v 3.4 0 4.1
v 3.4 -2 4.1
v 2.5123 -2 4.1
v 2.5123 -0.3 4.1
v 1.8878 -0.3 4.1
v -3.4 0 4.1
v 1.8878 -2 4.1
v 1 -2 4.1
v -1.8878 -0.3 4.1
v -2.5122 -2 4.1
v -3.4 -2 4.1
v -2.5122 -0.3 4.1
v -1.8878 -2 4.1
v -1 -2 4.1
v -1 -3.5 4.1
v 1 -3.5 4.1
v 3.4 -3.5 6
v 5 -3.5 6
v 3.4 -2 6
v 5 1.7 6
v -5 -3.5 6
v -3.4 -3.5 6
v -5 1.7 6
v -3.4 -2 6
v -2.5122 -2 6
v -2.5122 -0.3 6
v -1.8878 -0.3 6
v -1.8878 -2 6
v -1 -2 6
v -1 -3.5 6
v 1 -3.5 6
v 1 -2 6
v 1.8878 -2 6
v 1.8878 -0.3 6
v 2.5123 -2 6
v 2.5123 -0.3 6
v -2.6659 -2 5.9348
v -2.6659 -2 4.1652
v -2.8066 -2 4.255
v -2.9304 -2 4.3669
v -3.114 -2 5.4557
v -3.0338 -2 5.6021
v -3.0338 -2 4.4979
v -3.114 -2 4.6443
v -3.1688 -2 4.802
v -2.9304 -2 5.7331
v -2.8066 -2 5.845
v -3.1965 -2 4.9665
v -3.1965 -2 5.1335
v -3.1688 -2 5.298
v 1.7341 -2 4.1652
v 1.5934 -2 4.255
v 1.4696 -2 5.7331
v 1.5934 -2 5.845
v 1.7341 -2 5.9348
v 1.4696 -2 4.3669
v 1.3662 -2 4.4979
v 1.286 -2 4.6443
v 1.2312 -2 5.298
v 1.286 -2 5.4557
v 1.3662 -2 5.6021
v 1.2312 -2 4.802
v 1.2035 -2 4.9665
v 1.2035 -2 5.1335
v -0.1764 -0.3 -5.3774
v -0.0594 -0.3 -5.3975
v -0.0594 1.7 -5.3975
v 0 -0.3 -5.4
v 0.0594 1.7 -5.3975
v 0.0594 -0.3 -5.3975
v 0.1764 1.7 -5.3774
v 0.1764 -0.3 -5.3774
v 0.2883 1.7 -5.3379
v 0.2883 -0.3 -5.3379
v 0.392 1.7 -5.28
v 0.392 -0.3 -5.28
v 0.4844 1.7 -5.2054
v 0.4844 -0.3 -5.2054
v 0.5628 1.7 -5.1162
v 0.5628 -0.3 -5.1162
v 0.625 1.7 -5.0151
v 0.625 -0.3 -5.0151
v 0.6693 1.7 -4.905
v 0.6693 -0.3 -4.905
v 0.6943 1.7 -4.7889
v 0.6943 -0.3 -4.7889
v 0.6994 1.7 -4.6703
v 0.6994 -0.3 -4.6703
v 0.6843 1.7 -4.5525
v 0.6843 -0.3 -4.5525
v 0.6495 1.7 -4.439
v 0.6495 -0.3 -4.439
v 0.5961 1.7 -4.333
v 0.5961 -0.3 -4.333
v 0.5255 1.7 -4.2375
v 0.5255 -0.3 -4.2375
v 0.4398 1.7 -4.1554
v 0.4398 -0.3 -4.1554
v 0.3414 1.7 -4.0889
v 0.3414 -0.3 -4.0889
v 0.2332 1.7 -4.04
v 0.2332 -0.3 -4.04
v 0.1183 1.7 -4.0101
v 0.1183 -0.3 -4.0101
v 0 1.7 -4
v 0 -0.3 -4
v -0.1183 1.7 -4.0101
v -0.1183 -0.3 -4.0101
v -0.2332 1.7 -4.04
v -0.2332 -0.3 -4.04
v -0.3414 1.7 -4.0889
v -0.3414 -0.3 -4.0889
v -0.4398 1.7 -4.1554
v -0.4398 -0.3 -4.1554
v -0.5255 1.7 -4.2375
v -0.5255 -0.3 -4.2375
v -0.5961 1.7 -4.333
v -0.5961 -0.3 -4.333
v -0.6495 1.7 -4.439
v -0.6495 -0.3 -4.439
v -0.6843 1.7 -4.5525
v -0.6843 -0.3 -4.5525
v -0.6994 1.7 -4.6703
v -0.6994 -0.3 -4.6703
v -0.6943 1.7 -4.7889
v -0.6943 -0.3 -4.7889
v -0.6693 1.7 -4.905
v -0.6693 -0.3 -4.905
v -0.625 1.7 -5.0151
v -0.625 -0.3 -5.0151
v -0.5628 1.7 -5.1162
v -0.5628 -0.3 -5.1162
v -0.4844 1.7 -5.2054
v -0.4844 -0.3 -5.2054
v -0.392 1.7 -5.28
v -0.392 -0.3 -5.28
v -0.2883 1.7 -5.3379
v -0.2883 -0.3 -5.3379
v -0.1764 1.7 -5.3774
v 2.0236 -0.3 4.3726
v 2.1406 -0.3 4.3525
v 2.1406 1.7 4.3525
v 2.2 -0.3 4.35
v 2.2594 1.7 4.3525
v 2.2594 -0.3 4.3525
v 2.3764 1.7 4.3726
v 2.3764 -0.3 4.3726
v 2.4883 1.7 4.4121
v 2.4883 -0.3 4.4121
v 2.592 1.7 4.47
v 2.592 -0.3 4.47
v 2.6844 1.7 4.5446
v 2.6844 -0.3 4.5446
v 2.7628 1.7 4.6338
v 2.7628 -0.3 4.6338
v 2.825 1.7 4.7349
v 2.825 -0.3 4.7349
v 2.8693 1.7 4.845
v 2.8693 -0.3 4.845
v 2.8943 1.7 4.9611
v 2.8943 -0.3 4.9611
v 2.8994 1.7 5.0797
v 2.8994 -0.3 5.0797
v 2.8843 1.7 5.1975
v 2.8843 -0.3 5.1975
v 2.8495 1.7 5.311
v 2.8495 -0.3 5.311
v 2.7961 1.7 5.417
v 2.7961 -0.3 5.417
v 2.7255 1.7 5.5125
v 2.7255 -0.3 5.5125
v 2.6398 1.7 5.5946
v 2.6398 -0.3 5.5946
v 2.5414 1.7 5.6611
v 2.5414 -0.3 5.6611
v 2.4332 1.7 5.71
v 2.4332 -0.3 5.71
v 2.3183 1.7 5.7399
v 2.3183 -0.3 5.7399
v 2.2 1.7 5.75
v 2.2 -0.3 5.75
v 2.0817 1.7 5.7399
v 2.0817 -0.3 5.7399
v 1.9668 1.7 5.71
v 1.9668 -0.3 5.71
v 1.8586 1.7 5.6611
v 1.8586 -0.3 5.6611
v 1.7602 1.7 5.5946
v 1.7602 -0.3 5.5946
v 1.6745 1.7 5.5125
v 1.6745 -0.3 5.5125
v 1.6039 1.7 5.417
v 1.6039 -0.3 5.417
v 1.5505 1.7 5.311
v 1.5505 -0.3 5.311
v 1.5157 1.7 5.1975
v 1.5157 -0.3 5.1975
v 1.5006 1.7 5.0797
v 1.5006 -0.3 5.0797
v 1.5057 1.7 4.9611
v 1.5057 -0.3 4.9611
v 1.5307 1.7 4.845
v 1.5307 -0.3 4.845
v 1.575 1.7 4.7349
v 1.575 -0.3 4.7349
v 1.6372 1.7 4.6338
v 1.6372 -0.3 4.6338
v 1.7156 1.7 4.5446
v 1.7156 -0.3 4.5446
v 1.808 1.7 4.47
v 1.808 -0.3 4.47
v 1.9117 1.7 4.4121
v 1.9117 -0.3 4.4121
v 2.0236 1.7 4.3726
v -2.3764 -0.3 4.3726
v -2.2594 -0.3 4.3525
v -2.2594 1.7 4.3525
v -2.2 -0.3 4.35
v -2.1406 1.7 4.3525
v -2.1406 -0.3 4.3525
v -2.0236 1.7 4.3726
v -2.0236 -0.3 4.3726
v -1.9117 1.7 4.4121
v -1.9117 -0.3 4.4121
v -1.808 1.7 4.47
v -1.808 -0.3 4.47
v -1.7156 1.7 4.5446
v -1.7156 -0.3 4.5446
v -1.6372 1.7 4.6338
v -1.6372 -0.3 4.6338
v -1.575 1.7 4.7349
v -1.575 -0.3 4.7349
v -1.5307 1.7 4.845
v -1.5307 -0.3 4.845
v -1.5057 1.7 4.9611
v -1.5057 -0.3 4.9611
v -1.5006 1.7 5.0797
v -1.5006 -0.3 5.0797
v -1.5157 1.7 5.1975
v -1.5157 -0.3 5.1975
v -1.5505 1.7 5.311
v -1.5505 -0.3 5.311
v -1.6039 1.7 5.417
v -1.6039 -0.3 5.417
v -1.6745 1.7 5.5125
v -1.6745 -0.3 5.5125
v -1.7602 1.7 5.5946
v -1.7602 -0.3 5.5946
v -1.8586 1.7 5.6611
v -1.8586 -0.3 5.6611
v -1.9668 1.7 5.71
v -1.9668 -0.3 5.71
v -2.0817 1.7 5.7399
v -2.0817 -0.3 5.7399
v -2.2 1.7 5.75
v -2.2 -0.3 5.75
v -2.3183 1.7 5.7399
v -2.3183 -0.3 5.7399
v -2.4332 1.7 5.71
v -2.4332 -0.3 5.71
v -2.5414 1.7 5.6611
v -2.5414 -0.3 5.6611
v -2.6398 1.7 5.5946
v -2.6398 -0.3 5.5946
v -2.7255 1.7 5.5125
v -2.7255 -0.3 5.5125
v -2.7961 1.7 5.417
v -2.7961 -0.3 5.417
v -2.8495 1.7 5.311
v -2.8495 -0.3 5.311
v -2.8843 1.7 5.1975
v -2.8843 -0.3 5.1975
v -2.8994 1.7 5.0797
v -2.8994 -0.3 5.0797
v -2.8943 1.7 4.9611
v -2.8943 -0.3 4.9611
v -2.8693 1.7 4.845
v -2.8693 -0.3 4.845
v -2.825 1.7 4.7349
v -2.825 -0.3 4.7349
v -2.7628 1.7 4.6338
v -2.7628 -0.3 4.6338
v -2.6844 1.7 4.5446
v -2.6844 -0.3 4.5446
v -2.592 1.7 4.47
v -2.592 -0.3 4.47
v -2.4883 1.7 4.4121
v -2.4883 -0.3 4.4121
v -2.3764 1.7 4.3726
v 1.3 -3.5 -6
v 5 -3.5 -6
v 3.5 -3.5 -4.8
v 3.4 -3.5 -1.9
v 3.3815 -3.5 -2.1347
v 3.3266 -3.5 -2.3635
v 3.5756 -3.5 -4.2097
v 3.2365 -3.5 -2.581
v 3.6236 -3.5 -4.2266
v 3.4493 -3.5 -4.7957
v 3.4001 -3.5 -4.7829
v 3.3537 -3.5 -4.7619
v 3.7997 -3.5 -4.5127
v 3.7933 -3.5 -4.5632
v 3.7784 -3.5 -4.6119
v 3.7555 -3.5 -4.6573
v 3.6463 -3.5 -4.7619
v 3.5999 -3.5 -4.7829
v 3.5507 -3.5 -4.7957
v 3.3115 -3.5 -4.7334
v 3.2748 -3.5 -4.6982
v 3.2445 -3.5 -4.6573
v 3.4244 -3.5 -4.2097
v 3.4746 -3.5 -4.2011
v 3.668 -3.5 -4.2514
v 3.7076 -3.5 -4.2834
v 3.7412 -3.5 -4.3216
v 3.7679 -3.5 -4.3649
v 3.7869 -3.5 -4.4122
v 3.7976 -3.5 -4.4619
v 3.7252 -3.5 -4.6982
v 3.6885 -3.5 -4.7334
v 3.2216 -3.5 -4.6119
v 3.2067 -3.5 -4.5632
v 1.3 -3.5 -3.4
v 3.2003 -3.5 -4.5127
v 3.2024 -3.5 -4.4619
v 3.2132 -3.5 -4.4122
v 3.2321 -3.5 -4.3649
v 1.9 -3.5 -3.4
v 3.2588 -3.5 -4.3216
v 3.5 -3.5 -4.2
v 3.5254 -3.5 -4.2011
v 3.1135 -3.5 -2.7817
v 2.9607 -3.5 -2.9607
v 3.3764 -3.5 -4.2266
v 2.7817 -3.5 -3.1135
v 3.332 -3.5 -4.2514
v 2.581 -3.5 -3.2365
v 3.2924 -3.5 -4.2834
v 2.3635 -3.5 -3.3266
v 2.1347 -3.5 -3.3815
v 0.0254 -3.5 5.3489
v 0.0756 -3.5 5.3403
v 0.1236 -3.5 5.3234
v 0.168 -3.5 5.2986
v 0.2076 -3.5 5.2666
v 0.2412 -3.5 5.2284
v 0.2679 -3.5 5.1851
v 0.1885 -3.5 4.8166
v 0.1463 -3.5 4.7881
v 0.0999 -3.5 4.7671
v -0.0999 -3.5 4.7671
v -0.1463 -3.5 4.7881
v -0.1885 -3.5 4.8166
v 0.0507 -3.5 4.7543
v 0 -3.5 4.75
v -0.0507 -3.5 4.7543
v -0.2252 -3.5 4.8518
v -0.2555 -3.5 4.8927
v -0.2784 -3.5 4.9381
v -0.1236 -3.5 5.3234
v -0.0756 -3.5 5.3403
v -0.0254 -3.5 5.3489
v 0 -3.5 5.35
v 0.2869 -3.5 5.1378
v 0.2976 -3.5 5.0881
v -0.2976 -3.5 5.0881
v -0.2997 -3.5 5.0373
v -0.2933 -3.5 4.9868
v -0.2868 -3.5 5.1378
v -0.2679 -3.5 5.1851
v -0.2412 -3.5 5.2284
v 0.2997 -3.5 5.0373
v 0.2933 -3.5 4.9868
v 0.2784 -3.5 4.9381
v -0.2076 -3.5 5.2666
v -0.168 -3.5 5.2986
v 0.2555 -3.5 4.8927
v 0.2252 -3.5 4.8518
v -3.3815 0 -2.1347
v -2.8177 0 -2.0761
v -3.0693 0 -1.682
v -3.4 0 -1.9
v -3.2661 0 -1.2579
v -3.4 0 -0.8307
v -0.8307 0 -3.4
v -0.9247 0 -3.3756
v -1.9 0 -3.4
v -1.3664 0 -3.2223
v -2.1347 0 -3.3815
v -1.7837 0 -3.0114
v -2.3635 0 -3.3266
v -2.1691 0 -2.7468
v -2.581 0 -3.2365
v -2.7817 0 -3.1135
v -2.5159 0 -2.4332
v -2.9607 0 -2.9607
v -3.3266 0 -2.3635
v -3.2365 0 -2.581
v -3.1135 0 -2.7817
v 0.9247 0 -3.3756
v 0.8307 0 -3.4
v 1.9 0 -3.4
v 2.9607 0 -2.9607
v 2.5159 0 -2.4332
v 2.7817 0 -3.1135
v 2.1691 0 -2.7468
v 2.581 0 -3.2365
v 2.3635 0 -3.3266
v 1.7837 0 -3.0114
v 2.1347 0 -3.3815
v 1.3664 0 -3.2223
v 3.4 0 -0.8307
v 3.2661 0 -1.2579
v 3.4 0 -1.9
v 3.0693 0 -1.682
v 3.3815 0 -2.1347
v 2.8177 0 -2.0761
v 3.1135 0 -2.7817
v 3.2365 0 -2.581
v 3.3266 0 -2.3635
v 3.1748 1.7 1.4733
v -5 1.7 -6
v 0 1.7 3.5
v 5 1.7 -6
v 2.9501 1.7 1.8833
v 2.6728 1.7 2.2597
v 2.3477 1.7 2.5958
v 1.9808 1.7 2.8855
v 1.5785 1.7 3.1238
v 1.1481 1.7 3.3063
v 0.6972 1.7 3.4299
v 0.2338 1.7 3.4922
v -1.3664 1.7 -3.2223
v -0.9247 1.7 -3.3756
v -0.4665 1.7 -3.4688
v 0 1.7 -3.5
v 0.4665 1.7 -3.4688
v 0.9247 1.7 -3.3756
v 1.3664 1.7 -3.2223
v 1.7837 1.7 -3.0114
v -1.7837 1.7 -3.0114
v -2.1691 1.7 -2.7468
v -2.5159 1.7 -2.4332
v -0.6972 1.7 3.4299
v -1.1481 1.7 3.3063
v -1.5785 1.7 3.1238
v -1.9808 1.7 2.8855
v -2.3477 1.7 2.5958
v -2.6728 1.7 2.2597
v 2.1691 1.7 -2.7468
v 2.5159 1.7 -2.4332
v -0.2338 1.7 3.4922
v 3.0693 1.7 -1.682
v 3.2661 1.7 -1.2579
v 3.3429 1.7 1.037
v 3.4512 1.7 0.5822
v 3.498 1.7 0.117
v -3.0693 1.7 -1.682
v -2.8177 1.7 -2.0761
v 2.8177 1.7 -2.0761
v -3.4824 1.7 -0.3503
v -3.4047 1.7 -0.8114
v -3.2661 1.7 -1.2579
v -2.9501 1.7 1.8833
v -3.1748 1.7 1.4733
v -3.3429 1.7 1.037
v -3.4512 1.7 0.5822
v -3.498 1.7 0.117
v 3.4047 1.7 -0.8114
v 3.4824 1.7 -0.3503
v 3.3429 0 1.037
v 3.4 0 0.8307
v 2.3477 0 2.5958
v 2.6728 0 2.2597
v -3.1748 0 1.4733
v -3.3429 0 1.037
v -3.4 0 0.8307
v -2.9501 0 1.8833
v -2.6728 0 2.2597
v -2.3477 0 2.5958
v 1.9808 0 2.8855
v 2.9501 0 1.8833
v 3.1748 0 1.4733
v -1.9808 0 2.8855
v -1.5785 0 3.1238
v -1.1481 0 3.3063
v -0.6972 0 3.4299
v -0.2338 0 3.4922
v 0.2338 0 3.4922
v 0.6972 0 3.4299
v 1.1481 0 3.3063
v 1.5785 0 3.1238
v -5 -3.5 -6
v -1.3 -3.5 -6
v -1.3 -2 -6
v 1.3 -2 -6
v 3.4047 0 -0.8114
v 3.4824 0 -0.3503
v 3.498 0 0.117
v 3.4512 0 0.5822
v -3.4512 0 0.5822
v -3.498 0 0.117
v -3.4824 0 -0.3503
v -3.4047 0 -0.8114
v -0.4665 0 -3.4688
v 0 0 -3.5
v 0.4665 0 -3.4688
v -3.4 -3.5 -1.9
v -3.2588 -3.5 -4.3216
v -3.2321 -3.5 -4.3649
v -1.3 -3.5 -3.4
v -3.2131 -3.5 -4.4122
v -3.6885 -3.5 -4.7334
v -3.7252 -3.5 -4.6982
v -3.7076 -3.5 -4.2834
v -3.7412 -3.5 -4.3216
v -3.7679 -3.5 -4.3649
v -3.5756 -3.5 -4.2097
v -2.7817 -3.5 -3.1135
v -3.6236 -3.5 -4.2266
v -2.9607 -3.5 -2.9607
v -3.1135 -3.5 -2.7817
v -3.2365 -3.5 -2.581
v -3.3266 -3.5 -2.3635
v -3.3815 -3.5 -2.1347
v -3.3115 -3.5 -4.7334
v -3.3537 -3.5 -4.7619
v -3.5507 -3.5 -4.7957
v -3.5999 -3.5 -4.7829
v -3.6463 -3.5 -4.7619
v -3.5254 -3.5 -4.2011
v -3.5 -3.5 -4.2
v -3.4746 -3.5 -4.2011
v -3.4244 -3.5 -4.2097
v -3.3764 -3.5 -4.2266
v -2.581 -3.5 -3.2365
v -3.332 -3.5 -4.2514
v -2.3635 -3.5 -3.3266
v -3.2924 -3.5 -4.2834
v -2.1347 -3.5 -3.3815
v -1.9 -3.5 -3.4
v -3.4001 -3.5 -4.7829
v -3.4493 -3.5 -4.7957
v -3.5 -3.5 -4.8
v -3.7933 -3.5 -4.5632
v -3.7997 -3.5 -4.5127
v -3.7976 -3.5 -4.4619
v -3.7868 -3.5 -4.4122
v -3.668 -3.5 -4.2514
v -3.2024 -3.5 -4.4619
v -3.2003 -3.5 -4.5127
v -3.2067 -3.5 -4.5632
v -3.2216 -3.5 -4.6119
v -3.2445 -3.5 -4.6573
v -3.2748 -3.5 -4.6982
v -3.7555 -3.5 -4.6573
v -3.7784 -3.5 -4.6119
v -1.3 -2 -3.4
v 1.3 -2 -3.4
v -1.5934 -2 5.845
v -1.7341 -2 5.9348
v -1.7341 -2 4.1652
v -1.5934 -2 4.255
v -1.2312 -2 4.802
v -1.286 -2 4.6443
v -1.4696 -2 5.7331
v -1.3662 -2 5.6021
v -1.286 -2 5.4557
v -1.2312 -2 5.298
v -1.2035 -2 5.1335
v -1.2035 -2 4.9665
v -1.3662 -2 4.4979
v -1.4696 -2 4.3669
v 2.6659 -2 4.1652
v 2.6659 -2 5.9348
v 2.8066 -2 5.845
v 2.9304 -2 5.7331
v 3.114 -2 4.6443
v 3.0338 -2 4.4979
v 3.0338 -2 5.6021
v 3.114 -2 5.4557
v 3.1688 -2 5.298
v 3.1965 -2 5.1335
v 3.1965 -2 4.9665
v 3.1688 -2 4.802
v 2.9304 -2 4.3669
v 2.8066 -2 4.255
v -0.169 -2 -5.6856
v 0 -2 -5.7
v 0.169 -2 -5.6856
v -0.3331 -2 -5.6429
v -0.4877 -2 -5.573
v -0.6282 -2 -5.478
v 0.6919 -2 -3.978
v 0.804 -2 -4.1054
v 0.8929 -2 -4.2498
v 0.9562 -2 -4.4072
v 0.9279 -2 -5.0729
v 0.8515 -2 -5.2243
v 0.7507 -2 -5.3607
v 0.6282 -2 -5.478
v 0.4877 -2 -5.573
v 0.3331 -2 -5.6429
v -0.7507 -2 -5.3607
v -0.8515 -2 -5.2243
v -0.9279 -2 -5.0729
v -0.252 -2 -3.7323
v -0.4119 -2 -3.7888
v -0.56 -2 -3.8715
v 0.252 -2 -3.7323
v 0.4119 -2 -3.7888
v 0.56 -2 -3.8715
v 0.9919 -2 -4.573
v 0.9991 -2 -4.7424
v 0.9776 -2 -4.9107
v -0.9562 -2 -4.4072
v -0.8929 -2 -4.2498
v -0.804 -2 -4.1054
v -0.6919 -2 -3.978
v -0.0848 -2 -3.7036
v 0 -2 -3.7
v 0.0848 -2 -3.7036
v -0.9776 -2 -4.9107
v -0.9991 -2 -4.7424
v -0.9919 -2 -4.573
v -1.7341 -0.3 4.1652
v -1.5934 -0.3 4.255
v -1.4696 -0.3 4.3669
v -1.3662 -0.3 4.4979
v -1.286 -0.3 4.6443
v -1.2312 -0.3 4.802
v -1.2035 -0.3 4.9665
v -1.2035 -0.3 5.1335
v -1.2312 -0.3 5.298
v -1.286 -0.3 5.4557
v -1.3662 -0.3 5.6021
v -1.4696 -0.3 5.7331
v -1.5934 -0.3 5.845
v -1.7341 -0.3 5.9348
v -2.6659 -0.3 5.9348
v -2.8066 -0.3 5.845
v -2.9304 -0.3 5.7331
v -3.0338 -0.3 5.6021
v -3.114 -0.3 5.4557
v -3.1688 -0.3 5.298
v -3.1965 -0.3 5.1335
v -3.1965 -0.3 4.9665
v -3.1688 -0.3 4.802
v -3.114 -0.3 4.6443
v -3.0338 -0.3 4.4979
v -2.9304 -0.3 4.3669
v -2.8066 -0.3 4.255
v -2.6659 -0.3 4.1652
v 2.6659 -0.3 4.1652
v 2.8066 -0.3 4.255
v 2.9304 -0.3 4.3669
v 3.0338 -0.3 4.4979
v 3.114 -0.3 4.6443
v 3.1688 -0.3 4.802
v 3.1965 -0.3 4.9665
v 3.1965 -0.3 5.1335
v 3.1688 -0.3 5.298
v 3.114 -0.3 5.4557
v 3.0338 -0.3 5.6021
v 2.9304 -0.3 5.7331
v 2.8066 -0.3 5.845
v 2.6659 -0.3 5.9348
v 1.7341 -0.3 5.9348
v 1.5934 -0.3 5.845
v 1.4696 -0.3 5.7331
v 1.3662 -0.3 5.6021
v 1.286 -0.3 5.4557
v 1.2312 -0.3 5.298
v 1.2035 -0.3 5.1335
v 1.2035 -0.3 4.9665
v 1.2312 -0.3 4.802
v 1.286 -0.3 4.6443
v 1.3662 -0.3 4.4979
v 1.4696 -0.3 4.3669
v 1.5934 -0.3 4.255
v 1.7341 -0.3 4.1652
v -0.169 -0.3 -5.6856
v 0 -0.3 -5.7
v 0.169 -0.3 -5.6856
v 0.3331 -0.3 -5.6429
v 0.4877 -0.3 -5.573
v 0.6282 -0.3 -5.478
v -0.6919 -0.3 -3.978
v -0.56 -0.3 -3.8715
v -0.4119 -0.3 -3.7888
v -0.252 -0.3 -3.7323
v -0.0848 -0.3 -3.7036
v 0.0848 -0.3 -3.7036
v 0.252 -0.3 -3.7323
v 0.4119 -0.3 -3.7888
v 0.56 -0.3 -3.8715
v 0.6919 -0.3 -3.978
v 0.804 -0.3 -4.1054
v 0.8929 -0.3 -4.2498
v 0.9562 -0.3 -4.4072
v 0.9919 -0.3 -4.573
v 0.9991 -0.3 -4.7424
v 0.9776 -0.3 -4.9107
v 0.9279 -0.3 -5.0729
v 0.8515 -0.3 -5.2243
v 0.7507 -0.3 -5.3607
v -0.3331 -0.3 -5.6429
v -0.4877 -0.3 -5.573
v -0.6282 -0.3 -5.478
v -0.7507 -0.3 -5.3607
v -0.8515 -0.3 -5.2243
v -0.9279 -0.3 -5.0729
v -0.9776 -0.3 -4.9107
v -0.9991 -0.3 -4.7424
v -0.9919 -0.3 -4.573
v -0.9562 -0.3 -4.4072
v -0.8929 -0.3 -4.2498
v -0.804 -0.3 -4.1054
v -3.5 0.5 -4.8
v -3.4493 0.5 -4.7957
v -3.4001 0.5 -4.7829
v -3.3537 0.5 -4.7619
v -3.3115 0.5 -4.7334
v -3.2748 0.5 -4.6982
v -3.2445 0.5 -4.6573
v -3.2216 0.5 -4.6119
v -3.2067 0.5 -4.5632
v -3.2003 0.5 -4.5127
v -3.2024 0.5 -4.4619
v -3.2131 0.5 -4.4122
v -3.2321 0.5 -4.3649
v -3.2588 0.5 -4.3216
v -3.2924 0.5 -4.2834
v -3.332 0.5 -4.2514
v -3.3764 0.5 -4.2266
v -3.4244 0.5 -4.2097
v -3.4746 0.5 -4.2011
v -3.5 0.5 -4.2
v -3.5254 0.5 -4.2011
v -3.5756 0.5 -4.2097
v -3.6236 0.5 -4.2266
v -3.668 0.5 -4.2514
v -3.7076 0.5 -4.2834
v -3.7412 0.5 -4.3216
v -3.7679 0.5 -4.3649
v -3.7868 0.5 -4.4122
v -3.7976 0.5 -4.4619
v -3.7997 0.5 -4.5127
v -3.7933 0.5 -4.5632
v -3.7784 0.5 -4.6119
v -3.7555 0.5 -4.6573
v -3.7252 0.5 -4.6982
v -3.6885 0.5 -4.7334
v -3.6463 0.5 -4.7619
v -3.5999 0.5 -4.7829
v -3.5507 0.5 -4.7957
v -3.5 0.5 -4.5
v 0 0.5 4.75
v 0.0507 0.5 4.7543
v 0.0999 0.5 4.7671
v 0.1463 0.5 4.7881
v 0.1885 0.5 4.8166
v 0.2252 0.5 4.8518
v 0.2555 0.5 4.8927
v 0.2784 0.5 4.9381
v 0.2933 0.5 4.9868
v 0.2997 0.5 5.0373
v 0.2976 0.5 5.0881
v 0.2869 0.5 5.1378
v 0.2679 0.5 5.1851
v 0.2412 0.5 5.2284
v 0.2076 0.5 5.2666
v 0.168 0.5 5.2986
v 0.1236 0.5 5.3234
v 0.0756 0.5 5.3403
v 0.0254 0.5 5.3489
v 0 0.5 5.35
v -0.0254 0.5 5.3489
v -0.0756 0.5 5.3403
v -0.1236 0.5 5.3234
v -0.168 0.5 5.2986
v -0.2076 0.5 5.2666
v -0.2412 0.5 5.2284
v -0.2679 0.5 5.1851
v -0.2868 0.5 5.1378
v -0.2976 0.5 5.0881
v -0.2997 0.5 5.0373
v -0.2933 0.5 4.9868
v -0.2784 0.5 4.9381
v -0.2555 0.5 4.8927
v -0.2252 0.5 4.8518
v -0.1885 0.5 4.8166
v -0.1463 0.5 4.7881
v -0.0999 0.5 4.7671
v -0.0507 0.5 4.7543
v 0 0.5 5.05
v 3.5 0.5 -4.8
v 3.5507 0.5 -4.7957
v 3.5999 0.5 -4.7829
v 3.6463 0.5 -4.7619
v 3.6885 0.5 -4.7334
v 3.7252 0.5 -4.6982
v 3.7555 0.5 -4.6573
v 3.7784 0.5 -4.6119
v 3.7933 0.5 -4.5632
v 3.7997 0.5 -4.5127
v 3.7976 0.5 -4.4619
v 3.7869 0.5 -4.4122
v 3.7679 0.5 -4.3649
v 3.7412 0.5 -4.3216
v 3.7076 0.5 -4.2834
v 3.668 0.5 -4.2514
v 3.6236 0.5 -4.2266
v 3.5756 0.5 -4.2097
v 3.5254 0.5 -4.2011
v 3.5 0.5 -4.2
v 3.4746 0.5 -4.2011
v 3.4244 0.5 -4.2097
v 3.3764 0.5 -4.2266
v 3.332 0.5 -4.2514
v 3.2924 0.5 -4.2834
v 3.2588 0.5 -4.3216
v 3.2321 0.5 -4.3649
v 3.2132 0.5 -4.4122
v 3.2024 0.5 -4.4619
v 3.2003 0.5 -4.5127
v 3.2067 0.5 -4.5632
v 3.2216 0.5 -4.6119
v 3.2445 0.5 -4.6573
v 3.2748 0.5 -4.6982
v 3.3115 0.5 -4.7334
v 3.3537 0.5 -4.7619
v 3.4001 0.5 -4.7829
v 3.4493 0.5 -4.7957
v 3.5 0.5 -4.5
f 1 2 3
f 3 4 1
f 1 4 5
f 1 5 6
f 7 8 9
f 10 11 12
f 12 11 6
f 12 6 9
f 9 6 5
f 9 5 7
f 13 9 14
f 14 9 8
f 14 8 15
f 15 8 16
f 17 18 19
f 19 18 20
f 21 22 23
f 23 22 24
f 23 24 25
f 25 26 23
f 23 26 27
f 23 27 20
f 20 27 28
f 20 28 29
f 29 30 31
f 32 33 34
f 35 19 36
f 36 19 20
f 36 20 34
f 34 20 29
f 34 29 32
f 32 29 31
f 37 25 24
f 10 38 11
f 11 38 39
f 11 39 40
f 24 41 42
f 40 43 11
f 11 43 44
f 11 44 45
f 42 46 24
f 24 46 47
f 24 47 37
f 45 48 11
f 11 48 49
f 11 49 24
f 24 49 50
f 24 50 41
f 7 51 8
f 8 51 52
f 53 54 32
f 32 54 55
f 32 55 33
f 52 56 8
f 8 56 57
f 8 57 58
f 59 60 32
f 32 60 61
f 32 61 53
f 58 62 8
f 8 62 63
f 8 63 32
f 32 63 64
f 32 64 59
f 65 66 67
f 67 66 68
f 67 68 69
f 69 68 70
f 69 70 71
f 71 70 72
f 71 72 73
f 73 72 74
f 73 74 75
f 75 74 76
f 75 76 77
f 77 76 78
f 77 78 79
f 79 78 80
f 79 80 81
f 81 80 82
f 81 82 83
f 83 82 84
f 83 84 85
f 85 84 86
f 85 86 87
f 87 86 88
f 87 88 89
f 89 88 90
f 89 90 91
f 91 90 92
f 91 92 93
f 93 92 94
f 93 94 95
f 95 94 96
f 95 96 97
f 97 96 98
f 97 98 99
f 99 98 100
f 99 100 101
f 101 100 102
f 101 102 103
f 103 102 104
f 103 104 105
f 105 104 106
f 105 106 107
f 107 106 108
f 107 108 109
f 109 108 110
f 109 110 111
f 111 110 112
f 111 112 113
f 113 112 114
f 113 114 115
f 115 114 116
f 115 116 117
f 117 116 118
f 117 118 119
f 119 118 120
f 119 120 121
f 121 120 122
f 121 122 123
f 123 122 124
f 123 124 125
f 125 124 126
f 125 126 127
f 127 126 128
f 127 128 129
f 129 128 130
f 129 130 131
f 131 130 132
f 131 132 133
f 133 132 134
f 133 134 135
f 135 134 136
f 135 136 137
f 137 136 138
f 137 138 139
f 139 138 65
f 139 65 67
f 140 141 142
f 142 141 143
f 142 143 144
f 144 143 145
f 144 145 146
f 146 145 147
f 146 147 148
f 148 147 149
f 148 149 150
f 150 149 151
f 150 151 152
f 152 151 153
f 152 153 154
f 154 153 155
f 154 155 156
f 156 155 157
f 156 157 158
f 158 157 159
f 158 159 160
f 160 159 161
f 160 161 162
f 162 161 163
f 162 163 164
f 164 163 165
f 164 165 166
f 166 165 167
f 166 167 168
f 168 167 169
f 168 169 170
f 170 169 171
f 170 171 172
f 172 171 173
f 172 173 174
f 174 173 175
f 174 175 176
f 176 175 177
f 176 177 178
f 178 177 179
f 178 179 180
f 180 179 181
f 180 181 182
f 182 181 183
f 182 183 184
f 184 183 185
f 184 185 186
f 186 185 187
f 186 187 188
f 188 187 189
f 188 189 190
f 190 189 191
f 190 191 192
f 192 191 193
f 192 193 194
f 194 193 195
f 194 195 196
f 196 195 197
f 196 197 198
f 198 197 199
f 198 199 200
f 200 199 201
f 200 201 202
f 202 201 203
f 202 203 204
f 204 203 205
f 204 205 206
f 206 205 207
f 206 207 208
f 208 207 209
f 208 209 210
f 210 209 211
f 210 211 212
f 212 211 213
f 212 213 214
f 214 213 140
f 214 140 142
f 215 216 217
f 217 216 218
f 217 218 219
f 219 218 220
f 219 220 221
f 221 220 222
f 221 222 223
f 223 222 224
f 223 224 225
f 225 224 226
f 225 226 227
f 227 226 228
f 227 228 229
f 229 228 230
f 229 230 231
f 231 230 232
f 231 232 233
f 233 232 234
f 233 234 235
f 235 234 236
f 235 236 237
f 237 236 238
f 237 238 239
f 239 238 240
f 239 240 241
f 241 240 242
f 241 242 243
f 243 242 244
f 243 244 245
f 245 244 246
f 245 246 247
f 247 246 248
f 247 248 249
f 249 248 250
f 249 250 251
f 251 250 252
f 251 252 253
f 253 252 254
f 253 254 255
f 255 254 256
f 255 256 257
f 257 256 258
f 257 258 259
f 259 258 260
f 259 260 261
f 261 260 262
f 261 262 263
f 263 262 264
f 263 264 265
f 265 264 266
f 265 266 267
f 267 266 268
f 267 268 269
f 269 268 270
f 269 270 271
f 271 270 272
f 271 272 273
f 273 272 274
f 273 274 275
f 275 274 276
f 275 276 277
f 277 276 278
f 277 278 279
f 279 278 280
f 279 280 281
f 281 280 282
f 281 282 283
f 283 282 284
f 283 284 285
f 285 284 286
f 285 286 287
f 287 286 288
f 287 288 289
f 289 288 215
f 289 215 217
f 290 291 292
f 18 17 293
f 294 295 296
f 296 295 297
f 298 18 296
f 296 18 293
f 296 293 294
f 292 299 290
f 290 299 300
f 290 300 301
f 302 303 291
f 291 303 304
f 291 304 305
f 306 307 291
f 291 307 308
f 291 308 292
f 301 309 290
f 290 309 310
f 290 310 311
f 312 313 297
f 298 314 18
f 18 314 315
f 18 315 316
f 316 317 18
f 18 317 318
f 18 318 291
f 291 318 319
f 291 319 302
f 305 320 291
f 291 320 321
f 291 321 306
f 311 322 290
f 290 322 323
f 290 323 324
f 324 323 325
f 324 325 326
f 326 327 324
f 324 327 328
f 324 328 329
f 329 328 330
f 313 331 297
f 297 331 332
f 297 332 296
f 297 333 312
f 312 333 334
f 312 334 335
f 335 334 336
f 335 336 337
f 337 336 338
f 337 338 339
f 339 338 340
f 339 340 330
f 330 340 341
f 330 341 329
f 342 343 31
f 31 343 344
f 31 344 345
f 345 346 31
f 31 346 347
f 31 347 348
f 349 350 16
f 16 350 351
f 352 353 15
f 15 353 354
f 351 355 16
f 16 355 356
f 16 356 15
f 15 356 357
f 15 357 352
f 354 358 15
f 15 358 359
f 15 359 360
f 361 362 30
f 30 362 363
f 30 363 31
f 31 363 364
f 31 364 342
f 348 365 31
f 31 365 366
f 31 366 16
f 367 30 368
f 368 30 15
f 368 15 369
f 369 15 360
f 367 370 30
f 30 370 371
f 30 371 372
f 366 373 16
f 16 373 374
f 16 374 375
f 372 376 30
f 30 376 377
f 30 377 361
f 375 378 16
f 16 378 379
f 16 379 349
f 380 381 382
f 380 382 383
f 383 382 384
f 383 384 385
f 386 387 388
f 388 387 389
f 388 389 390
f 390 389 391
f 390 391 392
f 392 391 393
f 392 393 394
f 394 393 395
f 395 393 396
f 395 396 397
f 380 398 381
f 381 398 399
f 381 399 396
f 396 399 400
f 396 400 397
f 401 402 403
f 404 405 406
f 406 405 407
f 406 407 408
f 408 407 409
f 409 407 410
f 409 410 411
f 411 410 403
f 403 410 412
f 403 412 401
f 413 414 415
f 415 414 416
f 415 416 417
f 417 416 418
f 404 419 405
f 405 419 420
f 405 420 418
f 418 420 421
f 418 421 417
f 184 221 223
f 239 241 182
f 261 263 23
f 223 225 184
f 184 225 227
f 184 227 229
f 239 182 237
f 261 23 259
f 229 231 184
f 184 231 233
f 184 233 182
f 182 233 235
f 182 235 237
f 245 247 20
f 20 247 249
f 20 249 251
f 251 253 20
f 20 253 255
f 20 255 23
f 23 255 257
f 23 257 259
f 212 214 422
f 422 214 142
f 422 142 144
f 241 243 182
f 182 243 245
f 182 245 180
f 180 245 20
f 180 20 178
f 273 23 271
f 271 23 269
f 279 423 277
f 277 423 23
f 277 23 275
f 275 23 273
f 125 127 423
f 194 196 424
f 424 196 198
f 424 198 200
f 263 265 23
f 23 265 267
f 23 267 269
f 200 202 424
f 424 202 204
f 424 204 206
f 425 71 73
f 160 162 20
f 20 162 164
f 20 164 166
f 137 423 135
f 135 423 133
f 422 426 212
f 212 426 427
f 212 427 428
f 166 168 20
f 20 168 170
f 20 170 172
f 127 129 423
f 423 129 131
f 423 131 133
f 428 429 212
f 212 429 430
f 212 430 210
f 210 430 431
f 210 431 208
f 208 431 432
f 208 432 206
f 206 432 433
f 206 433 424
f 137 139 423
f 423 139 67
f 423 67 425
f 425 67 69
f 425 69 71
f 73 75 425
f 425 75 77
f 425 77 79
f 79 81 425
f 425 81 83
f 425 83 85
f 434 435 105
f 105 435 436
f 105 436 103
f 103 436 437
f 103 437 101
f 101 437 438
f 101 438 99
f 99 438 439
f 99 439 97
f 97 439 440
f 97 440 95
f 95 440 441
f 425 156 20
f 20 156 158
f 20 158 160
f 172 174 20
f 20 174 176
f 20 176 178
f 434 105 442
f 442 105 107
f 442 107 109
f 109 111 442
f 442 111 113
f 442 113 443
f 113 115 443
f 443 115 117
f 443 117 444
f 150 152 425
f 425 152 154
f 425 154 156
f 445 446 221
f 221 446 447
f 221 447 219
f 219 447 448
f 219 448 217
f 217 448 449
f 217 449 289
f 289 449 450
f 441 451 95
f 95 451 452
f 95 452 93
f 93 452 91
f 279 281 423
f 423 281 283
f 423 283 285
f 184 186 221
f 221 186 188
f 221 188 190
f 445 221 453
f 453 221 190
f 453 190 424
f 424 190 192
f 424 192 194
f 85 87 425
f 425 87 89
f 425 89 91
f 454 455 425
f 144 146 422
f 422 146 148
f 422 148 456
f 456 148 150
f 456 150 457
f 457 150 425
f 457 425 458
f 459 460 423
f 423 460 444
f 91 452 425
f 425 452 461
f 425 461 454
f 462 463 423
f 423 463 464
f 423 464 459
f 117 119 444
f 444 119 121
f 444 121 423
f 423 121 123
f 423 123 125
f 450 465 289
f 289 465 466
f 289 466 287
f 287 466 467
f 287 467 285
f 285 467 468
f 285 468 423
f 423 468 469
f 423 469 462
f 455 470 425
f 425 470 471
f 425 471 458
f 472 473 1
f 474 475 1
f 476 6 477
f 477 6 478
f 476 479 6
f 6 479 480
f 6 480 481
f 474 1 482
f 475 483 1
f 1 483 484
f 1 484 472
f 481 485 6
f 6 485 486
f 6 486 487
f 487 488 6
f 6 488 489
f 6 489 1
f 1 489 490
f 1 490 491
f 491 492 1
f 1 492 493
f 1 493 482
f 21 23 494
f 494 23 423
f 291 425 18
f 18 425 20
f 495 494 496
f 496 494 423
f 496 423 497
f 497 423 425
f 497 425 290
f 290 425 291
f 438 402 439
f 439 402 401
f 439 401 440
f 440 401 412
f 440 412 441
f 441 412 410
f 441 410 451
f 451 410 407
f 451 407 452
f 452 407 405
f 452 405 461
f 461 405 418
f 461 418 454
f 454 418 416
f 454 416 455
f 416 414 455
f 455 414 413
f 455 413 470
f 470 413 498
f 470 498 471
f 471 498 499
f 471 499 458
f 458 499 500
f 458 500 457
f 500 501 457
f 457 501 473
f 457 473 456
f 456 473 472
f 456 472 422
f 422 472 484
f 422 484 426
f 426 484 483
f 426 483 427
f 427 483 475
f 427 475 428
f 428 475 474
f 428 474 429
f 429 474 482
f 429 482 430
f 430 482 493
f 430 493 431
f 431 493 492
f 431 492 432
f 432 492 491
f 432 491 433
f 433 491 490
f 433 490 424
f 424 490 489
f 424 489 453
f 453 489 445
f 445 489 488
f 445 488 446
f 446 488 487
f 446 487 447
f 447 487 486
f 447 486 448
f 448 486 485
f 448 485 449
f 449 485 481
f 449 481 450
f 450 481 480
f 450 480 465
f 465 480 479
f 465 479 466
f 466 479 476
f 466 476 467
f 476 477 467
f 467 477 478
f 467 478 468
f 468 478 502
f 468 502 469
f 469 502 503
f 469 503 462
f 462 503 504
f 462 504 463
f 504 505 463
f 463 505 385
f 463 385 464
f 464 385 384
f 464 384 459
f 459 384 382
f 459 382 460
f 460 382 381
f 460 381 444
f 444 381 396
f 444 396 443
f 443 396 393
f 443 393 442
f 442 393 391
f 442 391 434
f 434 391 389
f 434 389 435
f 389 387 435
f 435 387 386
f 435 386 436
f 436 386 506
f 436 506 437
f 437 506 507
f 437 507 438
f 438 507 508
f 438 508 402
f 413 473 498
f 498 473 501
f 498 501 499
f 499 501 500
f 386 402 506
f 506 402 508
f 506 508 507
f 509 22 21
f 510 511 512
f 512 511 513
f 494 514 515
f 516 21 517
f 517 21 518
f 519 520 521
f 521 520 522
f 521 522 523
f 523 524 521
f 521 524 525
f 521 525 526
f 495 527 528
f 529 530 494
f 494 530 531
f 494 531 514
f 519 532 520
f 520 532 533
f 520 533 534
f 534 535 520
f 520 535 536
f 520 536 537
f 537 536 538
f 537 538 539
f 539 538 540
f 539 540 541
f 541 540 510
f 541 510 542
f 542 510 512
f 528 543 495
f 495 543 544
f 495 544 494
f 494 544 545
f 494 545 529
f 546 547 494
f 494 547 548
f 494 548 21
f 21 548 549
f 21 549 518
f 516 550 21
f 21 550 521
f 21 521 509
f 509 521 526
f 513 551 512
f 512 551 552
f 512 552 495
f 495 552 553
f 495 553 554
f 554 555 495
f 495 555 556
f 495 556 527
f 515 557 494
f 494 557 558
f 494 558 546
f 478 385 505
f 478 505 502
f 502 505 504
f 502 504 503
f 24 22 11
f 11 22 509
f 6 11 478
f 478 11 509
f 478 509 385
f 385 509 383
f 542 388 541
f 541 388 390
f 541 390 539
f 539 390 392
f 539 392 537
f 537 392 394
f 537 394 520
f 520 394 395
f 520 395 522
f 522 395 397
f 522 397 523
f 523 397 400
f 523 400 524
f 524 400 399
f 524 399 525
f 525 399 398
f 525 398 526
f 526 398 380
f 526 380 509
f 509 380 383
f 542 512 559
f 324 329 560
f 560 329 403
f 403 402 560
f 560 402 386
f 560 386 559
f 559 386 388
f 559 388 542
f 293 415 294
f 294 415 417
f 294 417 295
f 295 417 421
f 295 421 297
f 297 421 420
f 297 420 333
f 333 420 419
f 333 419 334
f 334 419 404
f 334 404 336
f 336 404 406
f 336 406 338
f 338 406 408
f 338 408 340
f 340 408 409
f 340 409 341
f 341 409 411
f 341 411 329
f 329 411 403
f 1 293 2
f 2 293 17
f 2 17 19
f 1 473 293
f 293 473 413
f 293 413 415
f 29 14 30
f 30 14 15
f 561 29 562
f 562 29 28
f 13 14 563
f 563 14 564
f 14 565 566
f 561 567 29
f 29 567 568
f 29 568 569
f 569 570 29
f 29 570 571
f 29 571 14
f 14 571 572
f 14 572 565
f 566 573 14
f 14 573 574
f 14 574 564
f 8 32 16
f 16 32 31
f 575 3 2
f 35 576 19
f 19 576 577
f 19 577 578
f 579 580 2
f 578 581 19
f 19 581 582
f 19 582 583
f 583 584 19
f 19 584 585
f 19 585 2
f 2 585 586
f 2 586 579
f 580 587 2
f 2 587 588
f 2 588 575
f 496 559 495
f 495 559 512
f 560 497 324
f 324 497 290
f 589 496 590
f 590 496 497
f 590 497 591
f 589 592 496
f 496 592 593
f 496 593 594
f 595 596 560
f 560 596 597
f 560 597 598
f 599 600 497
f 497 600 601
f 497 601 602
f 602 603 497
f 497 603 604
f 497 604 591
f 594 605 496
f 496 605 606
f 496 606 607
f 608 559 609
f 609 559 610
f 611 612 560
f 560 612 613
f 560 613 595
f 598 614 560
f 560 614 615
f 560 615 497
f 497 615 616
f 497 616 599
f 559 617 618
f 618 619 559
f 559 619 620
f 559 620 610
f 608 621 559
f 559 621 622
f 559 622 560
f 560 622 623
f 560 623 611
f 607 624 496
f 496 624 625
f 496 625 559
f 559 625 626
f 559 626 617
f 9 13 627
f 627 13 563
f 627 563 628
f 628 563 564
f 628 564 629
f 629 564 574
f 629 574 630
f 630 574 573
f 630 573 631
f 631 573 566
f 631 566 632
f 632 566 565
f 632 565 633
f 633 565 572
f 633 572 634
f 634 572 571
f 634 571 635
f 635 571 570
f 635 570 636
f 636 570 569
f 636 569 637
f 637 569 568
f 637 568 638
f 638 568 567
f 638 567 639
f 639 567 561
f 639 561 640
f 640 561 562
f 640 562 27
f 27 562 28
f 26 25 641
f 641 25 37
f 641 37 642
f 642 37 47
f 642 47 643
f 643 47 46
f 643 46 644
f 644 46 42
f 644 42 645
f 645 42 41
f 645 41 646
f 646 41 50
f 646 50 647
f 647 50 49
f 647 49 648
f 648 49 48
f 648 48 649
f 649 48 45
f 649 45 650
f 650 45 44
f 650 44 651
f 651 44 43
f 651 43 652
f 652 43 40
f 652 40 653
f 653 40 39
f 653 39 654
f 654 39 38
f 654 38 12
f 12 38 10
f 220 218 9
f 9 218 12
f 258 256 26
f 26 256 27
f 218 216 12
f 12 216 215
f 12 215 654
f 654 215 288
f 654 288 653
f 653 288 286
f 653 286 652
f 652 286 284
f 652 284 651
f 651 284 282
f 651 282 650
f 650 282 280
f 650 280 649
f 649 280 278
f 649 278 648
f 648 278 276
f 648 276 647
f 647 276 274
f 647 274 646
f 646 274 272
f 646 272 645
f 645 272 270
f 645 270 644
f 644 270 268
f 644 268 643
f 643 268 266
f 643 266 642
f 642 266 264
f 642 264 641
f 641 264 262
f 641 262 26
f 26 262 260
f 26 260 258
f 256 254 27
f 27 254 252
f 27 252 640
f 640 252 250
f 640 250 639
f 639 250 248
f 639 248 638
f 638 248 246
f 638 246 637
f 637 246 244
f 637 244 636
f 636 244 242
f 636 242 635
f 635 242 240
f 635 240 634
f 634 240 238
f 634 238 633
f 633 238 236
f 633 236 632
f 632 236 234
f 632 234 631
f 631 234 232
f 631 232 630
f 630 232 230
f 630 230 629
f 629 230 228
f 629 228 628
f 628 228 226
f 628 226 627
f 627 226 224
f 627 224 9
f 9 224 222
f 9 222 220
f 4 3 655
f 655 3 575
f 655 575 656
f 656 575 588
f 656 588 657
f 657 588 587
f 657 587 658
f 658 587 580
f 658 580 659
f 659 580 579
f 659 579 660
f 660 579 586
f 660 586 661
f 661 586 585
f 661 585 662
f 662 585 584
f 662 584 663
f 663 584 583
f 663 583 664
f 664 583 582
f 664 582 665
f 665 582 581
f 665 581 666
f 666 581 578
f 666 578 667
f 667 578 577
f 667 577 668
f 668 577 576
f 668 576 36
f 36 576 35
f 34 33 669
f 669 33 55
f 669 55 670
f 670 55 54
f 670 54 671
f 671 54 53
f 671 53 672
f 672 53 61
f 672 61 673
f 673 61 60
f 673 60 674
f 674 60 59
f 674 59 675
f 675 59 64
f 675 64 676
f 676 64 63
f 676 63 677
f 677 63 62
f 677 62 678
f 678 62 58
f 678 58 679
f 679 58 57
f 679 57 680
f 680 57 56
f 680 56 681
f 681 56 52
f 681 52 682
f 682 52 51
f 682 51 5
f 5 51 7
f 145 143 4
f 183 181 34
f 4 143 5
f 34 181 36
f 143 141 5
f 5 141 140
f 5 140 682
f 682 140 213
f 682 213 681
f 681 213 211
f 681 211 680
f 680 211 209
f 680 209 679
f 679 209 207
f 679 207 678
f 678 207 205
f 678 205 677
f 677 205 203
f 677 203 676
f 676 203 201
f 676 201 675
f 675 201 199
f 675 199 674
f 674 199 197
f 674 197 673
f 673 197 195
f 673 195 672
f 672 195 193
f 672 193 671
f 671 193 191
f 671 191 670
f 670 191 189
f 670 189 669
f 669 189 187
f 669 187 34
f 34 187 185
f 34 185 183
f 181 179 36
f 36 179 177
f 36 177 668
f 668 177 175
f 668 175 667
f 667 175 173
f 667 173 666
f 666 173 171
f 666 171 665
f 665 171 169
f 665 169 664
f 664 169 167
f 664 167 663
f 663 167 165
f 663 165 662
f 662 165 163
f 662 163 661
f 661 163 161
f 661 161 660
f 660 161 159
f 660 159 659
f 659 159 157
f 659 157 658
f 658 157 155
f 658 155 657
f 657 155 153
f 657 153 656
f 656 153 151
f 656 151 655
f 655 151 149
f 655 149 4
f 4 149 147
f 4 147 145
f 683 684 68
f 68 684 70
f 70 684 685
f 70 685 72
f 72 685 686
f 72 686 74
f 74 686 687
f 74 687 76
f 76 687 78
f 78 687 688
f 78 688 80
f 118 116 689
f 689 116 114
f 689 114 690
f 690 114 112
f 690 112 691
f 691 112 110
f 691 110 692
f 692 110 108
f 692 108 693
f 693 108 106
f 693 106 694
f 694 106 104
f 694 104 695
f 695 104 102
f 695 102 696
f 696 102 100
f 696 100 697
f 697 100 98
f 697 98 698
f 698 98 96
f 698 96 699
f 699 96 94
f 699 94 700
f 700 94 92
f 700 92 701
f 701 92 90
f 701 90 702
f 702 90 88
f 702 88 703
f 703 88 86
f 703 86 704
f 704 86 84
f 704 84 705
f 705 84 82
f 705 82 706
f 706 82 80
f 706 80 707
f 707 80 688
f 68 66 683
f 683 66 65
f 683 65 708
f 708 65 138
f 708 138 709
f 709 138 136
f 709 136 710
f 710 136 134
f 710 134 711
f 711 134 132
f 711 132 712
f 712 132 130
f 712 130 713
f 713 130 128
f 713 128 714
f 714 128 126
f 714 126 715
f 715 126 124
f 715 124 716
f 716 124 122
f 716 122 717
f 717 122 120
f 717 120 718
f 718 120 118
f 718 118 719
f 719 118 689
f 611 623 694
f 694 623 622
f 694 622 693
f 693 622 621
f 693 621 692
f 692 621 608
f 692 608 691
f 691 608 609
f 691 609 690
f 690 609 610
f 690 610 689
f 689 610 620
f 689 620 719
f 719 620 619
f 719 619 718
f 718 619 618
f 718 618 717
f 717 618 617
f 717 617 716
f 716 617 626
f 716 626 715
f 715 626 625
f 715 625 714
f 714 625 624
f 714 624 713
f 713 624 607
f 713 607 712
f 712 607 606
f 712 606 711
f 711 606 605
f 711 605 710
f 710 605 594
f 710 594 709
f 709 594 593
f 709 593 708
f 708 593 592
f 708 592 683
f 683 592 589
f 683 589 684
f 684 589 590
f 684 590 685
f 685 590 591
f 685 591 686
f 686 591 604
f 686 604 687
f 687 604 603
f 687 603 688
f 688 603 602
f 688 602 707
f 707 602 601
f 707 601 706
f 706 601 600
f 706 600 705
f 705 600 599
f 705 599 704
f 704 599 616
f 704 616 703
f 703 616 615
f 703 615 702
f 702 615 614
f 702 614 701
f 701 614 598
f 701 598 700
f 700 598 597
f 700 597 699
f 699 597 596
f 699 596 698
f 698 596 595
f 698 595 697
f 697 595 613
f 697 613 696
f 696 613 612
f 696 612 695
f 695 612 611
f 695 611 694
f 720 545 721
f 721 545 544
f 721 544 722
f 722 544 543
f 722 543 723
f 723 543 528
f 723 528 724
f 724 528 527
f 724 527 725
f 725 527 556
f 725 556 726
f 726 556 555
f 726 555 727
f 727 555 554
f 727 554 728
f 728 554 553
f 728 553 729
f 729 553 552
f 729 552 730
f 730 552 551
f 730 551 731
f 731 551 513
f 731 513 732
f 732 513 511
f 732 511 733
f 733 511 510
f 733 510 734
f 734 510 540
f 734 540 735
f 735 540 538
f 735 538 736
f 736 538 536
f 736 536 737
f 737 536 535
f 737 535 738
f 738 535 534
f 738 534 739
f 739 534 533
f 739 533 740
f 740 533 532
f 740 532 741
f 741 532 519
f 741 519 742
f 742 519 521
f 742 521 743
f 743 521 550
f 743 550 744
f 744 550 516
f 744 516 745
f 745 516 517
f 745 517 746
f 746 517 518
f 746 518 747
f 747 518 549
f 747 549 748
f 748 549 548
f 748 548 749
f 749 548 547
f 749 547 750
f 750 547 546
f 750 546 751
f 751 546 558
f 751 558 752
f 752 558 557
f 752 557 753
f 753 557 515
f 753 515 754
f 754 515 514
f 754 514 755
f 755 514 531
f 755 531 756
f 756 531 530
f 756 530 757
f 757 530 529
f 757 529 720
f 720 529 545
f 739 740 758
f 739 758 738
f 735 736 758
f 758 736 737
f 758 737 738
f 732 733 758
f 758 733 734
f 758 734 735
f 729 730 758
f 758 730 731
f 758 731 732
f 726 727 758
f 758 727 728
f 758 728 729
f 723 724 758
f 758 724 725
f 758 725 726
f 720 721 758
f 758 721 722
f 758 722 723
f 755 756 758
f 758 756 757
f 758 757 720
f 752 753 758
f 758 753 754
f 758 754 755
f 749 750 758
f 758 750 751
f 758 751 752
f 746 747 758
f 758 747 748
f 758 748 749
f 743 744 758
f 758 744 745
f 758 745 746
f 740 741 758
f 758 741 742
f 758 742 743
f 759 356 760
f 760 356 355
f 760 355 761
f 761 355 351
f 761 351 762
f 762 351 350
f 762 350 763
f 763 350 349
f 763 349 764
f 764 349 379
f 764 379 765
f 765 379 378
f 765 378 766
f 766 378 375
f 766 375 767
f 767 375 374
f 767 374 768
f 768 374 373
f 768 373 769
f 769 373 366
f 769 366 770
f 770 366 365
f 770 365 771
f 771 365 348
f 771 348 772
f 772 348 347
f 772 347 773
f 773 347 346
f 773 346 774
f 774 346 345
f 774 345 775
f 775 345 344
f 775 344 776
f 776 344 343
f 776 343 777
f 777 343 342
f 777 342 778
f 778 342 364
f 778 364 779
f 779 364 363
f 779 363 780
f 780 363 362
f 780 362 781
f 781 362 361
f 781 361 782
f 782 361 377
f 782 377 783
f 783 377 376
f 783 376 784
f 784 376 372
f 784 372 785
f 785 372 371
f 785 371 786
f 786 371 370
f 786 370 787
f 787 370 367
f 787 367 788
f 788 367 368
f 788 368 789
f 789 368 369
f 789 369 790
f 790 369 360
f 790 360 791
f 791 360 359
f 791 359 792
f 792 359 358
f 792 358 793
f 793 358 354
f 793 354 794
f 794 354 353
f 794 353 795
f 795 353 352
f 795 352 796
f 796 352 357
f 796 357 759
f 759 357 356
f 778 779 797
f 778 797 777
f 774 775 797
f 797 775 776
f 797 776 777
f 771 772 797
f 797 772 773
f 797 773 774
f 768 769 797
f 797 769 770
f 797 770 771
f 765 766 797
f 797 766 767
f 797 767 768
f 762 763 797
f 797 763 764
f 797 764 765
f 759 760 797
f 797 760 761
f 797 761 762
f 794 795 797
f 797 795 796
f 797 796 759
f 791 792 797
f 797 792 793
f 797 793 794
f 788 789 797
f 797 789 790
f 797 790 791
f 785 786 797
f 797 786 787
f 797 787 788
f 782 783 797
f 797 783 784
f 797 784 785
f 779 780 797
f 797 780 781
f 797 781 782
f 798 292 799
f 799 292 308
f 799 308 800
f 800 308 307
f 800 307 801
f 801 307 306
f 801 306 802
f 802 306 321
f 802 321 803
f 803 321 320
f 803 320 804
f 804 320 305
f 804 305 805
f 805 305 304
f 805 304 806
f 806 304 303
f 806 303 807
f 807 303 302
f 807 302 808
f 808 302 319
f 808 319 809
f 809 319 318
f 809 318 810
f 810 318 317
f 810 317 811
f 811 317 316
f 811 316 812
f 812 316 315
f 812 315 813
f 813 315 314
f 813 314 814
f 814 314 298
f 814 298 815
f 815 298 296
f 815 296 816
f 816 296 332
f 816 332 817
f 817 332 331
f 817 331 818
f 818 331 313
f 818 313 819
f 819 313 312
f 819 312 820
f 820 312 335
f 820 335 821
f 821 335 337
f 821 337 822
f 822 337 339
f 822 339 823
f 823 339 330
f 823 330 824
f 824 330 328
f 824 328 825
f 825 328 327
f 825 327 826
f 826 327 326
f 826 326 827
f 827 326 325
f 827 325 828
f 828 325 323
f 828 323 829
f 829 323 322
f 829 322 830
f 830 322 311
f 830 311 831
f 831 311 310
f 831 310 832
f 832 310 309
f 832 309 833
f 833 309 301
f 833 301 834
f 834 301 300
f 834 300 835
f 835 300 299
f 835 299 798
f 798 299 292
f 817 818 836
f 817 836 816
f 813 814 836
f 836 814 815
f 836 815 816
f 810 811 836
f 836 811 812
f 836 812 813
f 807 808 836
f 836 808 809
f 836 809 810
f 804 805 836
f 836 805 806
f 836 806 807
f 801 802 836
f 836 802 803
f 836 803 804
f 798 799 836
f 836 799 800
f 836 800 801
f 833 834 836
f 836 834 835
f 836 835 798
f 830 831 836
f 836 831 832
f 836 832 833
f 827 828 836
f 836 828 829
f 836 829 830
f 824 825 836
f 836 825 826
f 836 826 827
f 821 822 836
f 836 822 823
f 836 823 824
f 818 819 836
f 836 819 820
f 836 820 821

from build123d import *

# Parameters (mm, degrees)
SKETCH_1_W          = 10
SKETCH_1_H          = 12
SKETCH_1_R          = 3.5
EXTRUDE_1_DEPTH     = 1.7
SKETCH_4_W          = 10
SKETCH_4_H          = 12
EXTRUDE_2_DEPTH     = 3.5
CUT_EXTRUDE_START   = 3.5
SKETCH_4_3_W        = 2.4
SKETCH_4_3_H        = 1.9
CUT_EXTRUDE_2_DEPTH = 1.5
SKETCH_5_R          = 0.7
CUT_EXTRUDE_3_DEPTH = 10.382963285
CUT_EXTRUDE_START_2 = -3.7
SKETCH_5_3_R        = 1
CUT_EXTRUDE_4_DEPTH = 1.7
CUT_EXTRUDE_START_3 = -5.2
SKETCH_5_4_R        = 0.3
CUT_EXTRUDE_5_DEPTH = 4


with BuildPart() as part:
    # 草图1 → 凸台-拉伸1 (new body)
    with BuildSketch(Plane(origin=(0, 0, 0), x_dir=(1, 0, 0), z_dir=(0, 1, 0))):
        Rectangle(SKETCH_1_W, SKETCH_1_H)
        with Locations(Location((0, 0, 0), (0, 0, 270))):
            Circle(SKETCH_1_R, mode=Mode.SUBTRACT)
    extrude(amount=EXTRUDE_1_DEPTH)

    # 草图4 → 凸台-拉伸2 (add)
    with BuildSketch(Plane.XZ):
        Rectangle(SKETCH_4_W, SKETCH_4_H)
        with BuildLine():
            Line((3.4, 4.1), (3.4, -1.9))
            ThreePointArc((3.4, -1.9), (2.960660172, -2.960660172), (1.9, -3.4))
            Line((1.9, -3.4), (-1.9, -3.4))
            ThreePointArc((-1.9, -3.4), (-2.960660172, -2.960660172), (-3.4, -1.9))
            Line((-3.4, -1.9), (-3.4, 4.1))
            Line((-3.4, 4.1), (3.4, 4.1))
        make_face(mode=Mode.SUBTRACT)
    extrude(amount=EXTRUDE_2_DEPTH)

    # 草图4<3> → 切除-拉伸2 (cut)
    with BuildSketch(Plane.XZ.offset(CUT_EXTRUDE_START)):
        with Locations((-2.2, 5.05)):
            Rectangle(SKETCH_4_3_W, SKETCH_4_3_H)
        with Locations((2.2, 5.05)):
            Rectangle(SKETCH_4_3_W, SKETCH_4_3_H)
        with BuildLine():
            Line((1.3, -6), (1.3, -3.4))
            Line((1.3, -3.4), (0.830662386, -3.4))
            ThreePointArc((0.830662386, -3.4), (0, -3.5), (-0.830662386, -3.4))
            Line((-0.830662386, -3.4), (-1.3, -3.4))
            Line((-1.3, -3.4), (-1.3, -6))
            Line((-1.3, -6), (1.3, -6))
        make_face()
        with BuildLine():
            ThreePointArc((-0.830662386, -3.4), (0, -3.5), (0.830662386, -3.4))
            Line((0.830662386, -3.4), (-0.830662386, -3.4))
        make_face()
    extrude(amount=-CUT_EXTRUDE_2_DEPTH, mode=Mode.SUBTRACT)

    # 草图5 → 切除-拉伸3 (cut, through all)
    with BuildSketch(Plane(origin=(0, 1.7, 0), x_dir=(1, 0, 0), z_dir=(0, 1, 0))):
        with Locations(Location((0, 4.7, 0), (0, 0, 270))):
            Circle(SKETCH_5_R)
        with Locations(Location((2.2, -5.05, 0), (0, 0, 270))):
            Circle(SKETCH_5_R)
        with Locations(Location((-2.2, -5.05, 0), (0, 0, 270))):
            Circle(SKETCH_5_R)
    extrude(amount=-CUT_EXTRUDE_3_DEPTH, mode=Mode.SUBTRACT)

    # 草图5<3> → 切除-拉伸4 (cut)
    with BuildSketch(Plane(origin=(0, 1.7, 0), x_dir=(1, 0, 0), z_dir=(0, 1, 0)).offset(CUT_EXTRUDE_START_2)):
        with Locations((2.2, -5.05)):
            Circle(SKETCH_5_3_R)
        with Locations((-2.2, -5.05)):
            Circle(SKETCH_5_3_R)
        with Locations(Location((0, 4.7, 0), (0, 0, 90))):
            Circle(SKETCH_5_3_R)
    extrude(amount=CUT_EXTRUDE_4_DEPTH, mode=Mode.SUBTRACT)

    # 草图5<4> → 切除-拉伸5 (cut)
    with BuildSketch(Plane(origin=(0, 1.7, 0), x_dir=(1, 0, 0), z_dir=(0, 1, 0)).offset(CUT_EXTRUDE_START_3)):
        with Locations(Location((3.5, 4.5, 0), (0, 0, 270))):
            Circle(SKETCH_5_4_R)
        with Locations(Location((-3.5, 4.5, 0), (0, 0, 270))):
            Circle(SKETCH_5_4_R)
        with Locations(Location((0, -5.05, 0), (0, 0, 270))):
            Circle(SKETCH_5_4_R)
    extrude(amount=CUT_EXTRUDE_5_DEPTH, mode=Mode.SUBTRACT)


solid = part.part
